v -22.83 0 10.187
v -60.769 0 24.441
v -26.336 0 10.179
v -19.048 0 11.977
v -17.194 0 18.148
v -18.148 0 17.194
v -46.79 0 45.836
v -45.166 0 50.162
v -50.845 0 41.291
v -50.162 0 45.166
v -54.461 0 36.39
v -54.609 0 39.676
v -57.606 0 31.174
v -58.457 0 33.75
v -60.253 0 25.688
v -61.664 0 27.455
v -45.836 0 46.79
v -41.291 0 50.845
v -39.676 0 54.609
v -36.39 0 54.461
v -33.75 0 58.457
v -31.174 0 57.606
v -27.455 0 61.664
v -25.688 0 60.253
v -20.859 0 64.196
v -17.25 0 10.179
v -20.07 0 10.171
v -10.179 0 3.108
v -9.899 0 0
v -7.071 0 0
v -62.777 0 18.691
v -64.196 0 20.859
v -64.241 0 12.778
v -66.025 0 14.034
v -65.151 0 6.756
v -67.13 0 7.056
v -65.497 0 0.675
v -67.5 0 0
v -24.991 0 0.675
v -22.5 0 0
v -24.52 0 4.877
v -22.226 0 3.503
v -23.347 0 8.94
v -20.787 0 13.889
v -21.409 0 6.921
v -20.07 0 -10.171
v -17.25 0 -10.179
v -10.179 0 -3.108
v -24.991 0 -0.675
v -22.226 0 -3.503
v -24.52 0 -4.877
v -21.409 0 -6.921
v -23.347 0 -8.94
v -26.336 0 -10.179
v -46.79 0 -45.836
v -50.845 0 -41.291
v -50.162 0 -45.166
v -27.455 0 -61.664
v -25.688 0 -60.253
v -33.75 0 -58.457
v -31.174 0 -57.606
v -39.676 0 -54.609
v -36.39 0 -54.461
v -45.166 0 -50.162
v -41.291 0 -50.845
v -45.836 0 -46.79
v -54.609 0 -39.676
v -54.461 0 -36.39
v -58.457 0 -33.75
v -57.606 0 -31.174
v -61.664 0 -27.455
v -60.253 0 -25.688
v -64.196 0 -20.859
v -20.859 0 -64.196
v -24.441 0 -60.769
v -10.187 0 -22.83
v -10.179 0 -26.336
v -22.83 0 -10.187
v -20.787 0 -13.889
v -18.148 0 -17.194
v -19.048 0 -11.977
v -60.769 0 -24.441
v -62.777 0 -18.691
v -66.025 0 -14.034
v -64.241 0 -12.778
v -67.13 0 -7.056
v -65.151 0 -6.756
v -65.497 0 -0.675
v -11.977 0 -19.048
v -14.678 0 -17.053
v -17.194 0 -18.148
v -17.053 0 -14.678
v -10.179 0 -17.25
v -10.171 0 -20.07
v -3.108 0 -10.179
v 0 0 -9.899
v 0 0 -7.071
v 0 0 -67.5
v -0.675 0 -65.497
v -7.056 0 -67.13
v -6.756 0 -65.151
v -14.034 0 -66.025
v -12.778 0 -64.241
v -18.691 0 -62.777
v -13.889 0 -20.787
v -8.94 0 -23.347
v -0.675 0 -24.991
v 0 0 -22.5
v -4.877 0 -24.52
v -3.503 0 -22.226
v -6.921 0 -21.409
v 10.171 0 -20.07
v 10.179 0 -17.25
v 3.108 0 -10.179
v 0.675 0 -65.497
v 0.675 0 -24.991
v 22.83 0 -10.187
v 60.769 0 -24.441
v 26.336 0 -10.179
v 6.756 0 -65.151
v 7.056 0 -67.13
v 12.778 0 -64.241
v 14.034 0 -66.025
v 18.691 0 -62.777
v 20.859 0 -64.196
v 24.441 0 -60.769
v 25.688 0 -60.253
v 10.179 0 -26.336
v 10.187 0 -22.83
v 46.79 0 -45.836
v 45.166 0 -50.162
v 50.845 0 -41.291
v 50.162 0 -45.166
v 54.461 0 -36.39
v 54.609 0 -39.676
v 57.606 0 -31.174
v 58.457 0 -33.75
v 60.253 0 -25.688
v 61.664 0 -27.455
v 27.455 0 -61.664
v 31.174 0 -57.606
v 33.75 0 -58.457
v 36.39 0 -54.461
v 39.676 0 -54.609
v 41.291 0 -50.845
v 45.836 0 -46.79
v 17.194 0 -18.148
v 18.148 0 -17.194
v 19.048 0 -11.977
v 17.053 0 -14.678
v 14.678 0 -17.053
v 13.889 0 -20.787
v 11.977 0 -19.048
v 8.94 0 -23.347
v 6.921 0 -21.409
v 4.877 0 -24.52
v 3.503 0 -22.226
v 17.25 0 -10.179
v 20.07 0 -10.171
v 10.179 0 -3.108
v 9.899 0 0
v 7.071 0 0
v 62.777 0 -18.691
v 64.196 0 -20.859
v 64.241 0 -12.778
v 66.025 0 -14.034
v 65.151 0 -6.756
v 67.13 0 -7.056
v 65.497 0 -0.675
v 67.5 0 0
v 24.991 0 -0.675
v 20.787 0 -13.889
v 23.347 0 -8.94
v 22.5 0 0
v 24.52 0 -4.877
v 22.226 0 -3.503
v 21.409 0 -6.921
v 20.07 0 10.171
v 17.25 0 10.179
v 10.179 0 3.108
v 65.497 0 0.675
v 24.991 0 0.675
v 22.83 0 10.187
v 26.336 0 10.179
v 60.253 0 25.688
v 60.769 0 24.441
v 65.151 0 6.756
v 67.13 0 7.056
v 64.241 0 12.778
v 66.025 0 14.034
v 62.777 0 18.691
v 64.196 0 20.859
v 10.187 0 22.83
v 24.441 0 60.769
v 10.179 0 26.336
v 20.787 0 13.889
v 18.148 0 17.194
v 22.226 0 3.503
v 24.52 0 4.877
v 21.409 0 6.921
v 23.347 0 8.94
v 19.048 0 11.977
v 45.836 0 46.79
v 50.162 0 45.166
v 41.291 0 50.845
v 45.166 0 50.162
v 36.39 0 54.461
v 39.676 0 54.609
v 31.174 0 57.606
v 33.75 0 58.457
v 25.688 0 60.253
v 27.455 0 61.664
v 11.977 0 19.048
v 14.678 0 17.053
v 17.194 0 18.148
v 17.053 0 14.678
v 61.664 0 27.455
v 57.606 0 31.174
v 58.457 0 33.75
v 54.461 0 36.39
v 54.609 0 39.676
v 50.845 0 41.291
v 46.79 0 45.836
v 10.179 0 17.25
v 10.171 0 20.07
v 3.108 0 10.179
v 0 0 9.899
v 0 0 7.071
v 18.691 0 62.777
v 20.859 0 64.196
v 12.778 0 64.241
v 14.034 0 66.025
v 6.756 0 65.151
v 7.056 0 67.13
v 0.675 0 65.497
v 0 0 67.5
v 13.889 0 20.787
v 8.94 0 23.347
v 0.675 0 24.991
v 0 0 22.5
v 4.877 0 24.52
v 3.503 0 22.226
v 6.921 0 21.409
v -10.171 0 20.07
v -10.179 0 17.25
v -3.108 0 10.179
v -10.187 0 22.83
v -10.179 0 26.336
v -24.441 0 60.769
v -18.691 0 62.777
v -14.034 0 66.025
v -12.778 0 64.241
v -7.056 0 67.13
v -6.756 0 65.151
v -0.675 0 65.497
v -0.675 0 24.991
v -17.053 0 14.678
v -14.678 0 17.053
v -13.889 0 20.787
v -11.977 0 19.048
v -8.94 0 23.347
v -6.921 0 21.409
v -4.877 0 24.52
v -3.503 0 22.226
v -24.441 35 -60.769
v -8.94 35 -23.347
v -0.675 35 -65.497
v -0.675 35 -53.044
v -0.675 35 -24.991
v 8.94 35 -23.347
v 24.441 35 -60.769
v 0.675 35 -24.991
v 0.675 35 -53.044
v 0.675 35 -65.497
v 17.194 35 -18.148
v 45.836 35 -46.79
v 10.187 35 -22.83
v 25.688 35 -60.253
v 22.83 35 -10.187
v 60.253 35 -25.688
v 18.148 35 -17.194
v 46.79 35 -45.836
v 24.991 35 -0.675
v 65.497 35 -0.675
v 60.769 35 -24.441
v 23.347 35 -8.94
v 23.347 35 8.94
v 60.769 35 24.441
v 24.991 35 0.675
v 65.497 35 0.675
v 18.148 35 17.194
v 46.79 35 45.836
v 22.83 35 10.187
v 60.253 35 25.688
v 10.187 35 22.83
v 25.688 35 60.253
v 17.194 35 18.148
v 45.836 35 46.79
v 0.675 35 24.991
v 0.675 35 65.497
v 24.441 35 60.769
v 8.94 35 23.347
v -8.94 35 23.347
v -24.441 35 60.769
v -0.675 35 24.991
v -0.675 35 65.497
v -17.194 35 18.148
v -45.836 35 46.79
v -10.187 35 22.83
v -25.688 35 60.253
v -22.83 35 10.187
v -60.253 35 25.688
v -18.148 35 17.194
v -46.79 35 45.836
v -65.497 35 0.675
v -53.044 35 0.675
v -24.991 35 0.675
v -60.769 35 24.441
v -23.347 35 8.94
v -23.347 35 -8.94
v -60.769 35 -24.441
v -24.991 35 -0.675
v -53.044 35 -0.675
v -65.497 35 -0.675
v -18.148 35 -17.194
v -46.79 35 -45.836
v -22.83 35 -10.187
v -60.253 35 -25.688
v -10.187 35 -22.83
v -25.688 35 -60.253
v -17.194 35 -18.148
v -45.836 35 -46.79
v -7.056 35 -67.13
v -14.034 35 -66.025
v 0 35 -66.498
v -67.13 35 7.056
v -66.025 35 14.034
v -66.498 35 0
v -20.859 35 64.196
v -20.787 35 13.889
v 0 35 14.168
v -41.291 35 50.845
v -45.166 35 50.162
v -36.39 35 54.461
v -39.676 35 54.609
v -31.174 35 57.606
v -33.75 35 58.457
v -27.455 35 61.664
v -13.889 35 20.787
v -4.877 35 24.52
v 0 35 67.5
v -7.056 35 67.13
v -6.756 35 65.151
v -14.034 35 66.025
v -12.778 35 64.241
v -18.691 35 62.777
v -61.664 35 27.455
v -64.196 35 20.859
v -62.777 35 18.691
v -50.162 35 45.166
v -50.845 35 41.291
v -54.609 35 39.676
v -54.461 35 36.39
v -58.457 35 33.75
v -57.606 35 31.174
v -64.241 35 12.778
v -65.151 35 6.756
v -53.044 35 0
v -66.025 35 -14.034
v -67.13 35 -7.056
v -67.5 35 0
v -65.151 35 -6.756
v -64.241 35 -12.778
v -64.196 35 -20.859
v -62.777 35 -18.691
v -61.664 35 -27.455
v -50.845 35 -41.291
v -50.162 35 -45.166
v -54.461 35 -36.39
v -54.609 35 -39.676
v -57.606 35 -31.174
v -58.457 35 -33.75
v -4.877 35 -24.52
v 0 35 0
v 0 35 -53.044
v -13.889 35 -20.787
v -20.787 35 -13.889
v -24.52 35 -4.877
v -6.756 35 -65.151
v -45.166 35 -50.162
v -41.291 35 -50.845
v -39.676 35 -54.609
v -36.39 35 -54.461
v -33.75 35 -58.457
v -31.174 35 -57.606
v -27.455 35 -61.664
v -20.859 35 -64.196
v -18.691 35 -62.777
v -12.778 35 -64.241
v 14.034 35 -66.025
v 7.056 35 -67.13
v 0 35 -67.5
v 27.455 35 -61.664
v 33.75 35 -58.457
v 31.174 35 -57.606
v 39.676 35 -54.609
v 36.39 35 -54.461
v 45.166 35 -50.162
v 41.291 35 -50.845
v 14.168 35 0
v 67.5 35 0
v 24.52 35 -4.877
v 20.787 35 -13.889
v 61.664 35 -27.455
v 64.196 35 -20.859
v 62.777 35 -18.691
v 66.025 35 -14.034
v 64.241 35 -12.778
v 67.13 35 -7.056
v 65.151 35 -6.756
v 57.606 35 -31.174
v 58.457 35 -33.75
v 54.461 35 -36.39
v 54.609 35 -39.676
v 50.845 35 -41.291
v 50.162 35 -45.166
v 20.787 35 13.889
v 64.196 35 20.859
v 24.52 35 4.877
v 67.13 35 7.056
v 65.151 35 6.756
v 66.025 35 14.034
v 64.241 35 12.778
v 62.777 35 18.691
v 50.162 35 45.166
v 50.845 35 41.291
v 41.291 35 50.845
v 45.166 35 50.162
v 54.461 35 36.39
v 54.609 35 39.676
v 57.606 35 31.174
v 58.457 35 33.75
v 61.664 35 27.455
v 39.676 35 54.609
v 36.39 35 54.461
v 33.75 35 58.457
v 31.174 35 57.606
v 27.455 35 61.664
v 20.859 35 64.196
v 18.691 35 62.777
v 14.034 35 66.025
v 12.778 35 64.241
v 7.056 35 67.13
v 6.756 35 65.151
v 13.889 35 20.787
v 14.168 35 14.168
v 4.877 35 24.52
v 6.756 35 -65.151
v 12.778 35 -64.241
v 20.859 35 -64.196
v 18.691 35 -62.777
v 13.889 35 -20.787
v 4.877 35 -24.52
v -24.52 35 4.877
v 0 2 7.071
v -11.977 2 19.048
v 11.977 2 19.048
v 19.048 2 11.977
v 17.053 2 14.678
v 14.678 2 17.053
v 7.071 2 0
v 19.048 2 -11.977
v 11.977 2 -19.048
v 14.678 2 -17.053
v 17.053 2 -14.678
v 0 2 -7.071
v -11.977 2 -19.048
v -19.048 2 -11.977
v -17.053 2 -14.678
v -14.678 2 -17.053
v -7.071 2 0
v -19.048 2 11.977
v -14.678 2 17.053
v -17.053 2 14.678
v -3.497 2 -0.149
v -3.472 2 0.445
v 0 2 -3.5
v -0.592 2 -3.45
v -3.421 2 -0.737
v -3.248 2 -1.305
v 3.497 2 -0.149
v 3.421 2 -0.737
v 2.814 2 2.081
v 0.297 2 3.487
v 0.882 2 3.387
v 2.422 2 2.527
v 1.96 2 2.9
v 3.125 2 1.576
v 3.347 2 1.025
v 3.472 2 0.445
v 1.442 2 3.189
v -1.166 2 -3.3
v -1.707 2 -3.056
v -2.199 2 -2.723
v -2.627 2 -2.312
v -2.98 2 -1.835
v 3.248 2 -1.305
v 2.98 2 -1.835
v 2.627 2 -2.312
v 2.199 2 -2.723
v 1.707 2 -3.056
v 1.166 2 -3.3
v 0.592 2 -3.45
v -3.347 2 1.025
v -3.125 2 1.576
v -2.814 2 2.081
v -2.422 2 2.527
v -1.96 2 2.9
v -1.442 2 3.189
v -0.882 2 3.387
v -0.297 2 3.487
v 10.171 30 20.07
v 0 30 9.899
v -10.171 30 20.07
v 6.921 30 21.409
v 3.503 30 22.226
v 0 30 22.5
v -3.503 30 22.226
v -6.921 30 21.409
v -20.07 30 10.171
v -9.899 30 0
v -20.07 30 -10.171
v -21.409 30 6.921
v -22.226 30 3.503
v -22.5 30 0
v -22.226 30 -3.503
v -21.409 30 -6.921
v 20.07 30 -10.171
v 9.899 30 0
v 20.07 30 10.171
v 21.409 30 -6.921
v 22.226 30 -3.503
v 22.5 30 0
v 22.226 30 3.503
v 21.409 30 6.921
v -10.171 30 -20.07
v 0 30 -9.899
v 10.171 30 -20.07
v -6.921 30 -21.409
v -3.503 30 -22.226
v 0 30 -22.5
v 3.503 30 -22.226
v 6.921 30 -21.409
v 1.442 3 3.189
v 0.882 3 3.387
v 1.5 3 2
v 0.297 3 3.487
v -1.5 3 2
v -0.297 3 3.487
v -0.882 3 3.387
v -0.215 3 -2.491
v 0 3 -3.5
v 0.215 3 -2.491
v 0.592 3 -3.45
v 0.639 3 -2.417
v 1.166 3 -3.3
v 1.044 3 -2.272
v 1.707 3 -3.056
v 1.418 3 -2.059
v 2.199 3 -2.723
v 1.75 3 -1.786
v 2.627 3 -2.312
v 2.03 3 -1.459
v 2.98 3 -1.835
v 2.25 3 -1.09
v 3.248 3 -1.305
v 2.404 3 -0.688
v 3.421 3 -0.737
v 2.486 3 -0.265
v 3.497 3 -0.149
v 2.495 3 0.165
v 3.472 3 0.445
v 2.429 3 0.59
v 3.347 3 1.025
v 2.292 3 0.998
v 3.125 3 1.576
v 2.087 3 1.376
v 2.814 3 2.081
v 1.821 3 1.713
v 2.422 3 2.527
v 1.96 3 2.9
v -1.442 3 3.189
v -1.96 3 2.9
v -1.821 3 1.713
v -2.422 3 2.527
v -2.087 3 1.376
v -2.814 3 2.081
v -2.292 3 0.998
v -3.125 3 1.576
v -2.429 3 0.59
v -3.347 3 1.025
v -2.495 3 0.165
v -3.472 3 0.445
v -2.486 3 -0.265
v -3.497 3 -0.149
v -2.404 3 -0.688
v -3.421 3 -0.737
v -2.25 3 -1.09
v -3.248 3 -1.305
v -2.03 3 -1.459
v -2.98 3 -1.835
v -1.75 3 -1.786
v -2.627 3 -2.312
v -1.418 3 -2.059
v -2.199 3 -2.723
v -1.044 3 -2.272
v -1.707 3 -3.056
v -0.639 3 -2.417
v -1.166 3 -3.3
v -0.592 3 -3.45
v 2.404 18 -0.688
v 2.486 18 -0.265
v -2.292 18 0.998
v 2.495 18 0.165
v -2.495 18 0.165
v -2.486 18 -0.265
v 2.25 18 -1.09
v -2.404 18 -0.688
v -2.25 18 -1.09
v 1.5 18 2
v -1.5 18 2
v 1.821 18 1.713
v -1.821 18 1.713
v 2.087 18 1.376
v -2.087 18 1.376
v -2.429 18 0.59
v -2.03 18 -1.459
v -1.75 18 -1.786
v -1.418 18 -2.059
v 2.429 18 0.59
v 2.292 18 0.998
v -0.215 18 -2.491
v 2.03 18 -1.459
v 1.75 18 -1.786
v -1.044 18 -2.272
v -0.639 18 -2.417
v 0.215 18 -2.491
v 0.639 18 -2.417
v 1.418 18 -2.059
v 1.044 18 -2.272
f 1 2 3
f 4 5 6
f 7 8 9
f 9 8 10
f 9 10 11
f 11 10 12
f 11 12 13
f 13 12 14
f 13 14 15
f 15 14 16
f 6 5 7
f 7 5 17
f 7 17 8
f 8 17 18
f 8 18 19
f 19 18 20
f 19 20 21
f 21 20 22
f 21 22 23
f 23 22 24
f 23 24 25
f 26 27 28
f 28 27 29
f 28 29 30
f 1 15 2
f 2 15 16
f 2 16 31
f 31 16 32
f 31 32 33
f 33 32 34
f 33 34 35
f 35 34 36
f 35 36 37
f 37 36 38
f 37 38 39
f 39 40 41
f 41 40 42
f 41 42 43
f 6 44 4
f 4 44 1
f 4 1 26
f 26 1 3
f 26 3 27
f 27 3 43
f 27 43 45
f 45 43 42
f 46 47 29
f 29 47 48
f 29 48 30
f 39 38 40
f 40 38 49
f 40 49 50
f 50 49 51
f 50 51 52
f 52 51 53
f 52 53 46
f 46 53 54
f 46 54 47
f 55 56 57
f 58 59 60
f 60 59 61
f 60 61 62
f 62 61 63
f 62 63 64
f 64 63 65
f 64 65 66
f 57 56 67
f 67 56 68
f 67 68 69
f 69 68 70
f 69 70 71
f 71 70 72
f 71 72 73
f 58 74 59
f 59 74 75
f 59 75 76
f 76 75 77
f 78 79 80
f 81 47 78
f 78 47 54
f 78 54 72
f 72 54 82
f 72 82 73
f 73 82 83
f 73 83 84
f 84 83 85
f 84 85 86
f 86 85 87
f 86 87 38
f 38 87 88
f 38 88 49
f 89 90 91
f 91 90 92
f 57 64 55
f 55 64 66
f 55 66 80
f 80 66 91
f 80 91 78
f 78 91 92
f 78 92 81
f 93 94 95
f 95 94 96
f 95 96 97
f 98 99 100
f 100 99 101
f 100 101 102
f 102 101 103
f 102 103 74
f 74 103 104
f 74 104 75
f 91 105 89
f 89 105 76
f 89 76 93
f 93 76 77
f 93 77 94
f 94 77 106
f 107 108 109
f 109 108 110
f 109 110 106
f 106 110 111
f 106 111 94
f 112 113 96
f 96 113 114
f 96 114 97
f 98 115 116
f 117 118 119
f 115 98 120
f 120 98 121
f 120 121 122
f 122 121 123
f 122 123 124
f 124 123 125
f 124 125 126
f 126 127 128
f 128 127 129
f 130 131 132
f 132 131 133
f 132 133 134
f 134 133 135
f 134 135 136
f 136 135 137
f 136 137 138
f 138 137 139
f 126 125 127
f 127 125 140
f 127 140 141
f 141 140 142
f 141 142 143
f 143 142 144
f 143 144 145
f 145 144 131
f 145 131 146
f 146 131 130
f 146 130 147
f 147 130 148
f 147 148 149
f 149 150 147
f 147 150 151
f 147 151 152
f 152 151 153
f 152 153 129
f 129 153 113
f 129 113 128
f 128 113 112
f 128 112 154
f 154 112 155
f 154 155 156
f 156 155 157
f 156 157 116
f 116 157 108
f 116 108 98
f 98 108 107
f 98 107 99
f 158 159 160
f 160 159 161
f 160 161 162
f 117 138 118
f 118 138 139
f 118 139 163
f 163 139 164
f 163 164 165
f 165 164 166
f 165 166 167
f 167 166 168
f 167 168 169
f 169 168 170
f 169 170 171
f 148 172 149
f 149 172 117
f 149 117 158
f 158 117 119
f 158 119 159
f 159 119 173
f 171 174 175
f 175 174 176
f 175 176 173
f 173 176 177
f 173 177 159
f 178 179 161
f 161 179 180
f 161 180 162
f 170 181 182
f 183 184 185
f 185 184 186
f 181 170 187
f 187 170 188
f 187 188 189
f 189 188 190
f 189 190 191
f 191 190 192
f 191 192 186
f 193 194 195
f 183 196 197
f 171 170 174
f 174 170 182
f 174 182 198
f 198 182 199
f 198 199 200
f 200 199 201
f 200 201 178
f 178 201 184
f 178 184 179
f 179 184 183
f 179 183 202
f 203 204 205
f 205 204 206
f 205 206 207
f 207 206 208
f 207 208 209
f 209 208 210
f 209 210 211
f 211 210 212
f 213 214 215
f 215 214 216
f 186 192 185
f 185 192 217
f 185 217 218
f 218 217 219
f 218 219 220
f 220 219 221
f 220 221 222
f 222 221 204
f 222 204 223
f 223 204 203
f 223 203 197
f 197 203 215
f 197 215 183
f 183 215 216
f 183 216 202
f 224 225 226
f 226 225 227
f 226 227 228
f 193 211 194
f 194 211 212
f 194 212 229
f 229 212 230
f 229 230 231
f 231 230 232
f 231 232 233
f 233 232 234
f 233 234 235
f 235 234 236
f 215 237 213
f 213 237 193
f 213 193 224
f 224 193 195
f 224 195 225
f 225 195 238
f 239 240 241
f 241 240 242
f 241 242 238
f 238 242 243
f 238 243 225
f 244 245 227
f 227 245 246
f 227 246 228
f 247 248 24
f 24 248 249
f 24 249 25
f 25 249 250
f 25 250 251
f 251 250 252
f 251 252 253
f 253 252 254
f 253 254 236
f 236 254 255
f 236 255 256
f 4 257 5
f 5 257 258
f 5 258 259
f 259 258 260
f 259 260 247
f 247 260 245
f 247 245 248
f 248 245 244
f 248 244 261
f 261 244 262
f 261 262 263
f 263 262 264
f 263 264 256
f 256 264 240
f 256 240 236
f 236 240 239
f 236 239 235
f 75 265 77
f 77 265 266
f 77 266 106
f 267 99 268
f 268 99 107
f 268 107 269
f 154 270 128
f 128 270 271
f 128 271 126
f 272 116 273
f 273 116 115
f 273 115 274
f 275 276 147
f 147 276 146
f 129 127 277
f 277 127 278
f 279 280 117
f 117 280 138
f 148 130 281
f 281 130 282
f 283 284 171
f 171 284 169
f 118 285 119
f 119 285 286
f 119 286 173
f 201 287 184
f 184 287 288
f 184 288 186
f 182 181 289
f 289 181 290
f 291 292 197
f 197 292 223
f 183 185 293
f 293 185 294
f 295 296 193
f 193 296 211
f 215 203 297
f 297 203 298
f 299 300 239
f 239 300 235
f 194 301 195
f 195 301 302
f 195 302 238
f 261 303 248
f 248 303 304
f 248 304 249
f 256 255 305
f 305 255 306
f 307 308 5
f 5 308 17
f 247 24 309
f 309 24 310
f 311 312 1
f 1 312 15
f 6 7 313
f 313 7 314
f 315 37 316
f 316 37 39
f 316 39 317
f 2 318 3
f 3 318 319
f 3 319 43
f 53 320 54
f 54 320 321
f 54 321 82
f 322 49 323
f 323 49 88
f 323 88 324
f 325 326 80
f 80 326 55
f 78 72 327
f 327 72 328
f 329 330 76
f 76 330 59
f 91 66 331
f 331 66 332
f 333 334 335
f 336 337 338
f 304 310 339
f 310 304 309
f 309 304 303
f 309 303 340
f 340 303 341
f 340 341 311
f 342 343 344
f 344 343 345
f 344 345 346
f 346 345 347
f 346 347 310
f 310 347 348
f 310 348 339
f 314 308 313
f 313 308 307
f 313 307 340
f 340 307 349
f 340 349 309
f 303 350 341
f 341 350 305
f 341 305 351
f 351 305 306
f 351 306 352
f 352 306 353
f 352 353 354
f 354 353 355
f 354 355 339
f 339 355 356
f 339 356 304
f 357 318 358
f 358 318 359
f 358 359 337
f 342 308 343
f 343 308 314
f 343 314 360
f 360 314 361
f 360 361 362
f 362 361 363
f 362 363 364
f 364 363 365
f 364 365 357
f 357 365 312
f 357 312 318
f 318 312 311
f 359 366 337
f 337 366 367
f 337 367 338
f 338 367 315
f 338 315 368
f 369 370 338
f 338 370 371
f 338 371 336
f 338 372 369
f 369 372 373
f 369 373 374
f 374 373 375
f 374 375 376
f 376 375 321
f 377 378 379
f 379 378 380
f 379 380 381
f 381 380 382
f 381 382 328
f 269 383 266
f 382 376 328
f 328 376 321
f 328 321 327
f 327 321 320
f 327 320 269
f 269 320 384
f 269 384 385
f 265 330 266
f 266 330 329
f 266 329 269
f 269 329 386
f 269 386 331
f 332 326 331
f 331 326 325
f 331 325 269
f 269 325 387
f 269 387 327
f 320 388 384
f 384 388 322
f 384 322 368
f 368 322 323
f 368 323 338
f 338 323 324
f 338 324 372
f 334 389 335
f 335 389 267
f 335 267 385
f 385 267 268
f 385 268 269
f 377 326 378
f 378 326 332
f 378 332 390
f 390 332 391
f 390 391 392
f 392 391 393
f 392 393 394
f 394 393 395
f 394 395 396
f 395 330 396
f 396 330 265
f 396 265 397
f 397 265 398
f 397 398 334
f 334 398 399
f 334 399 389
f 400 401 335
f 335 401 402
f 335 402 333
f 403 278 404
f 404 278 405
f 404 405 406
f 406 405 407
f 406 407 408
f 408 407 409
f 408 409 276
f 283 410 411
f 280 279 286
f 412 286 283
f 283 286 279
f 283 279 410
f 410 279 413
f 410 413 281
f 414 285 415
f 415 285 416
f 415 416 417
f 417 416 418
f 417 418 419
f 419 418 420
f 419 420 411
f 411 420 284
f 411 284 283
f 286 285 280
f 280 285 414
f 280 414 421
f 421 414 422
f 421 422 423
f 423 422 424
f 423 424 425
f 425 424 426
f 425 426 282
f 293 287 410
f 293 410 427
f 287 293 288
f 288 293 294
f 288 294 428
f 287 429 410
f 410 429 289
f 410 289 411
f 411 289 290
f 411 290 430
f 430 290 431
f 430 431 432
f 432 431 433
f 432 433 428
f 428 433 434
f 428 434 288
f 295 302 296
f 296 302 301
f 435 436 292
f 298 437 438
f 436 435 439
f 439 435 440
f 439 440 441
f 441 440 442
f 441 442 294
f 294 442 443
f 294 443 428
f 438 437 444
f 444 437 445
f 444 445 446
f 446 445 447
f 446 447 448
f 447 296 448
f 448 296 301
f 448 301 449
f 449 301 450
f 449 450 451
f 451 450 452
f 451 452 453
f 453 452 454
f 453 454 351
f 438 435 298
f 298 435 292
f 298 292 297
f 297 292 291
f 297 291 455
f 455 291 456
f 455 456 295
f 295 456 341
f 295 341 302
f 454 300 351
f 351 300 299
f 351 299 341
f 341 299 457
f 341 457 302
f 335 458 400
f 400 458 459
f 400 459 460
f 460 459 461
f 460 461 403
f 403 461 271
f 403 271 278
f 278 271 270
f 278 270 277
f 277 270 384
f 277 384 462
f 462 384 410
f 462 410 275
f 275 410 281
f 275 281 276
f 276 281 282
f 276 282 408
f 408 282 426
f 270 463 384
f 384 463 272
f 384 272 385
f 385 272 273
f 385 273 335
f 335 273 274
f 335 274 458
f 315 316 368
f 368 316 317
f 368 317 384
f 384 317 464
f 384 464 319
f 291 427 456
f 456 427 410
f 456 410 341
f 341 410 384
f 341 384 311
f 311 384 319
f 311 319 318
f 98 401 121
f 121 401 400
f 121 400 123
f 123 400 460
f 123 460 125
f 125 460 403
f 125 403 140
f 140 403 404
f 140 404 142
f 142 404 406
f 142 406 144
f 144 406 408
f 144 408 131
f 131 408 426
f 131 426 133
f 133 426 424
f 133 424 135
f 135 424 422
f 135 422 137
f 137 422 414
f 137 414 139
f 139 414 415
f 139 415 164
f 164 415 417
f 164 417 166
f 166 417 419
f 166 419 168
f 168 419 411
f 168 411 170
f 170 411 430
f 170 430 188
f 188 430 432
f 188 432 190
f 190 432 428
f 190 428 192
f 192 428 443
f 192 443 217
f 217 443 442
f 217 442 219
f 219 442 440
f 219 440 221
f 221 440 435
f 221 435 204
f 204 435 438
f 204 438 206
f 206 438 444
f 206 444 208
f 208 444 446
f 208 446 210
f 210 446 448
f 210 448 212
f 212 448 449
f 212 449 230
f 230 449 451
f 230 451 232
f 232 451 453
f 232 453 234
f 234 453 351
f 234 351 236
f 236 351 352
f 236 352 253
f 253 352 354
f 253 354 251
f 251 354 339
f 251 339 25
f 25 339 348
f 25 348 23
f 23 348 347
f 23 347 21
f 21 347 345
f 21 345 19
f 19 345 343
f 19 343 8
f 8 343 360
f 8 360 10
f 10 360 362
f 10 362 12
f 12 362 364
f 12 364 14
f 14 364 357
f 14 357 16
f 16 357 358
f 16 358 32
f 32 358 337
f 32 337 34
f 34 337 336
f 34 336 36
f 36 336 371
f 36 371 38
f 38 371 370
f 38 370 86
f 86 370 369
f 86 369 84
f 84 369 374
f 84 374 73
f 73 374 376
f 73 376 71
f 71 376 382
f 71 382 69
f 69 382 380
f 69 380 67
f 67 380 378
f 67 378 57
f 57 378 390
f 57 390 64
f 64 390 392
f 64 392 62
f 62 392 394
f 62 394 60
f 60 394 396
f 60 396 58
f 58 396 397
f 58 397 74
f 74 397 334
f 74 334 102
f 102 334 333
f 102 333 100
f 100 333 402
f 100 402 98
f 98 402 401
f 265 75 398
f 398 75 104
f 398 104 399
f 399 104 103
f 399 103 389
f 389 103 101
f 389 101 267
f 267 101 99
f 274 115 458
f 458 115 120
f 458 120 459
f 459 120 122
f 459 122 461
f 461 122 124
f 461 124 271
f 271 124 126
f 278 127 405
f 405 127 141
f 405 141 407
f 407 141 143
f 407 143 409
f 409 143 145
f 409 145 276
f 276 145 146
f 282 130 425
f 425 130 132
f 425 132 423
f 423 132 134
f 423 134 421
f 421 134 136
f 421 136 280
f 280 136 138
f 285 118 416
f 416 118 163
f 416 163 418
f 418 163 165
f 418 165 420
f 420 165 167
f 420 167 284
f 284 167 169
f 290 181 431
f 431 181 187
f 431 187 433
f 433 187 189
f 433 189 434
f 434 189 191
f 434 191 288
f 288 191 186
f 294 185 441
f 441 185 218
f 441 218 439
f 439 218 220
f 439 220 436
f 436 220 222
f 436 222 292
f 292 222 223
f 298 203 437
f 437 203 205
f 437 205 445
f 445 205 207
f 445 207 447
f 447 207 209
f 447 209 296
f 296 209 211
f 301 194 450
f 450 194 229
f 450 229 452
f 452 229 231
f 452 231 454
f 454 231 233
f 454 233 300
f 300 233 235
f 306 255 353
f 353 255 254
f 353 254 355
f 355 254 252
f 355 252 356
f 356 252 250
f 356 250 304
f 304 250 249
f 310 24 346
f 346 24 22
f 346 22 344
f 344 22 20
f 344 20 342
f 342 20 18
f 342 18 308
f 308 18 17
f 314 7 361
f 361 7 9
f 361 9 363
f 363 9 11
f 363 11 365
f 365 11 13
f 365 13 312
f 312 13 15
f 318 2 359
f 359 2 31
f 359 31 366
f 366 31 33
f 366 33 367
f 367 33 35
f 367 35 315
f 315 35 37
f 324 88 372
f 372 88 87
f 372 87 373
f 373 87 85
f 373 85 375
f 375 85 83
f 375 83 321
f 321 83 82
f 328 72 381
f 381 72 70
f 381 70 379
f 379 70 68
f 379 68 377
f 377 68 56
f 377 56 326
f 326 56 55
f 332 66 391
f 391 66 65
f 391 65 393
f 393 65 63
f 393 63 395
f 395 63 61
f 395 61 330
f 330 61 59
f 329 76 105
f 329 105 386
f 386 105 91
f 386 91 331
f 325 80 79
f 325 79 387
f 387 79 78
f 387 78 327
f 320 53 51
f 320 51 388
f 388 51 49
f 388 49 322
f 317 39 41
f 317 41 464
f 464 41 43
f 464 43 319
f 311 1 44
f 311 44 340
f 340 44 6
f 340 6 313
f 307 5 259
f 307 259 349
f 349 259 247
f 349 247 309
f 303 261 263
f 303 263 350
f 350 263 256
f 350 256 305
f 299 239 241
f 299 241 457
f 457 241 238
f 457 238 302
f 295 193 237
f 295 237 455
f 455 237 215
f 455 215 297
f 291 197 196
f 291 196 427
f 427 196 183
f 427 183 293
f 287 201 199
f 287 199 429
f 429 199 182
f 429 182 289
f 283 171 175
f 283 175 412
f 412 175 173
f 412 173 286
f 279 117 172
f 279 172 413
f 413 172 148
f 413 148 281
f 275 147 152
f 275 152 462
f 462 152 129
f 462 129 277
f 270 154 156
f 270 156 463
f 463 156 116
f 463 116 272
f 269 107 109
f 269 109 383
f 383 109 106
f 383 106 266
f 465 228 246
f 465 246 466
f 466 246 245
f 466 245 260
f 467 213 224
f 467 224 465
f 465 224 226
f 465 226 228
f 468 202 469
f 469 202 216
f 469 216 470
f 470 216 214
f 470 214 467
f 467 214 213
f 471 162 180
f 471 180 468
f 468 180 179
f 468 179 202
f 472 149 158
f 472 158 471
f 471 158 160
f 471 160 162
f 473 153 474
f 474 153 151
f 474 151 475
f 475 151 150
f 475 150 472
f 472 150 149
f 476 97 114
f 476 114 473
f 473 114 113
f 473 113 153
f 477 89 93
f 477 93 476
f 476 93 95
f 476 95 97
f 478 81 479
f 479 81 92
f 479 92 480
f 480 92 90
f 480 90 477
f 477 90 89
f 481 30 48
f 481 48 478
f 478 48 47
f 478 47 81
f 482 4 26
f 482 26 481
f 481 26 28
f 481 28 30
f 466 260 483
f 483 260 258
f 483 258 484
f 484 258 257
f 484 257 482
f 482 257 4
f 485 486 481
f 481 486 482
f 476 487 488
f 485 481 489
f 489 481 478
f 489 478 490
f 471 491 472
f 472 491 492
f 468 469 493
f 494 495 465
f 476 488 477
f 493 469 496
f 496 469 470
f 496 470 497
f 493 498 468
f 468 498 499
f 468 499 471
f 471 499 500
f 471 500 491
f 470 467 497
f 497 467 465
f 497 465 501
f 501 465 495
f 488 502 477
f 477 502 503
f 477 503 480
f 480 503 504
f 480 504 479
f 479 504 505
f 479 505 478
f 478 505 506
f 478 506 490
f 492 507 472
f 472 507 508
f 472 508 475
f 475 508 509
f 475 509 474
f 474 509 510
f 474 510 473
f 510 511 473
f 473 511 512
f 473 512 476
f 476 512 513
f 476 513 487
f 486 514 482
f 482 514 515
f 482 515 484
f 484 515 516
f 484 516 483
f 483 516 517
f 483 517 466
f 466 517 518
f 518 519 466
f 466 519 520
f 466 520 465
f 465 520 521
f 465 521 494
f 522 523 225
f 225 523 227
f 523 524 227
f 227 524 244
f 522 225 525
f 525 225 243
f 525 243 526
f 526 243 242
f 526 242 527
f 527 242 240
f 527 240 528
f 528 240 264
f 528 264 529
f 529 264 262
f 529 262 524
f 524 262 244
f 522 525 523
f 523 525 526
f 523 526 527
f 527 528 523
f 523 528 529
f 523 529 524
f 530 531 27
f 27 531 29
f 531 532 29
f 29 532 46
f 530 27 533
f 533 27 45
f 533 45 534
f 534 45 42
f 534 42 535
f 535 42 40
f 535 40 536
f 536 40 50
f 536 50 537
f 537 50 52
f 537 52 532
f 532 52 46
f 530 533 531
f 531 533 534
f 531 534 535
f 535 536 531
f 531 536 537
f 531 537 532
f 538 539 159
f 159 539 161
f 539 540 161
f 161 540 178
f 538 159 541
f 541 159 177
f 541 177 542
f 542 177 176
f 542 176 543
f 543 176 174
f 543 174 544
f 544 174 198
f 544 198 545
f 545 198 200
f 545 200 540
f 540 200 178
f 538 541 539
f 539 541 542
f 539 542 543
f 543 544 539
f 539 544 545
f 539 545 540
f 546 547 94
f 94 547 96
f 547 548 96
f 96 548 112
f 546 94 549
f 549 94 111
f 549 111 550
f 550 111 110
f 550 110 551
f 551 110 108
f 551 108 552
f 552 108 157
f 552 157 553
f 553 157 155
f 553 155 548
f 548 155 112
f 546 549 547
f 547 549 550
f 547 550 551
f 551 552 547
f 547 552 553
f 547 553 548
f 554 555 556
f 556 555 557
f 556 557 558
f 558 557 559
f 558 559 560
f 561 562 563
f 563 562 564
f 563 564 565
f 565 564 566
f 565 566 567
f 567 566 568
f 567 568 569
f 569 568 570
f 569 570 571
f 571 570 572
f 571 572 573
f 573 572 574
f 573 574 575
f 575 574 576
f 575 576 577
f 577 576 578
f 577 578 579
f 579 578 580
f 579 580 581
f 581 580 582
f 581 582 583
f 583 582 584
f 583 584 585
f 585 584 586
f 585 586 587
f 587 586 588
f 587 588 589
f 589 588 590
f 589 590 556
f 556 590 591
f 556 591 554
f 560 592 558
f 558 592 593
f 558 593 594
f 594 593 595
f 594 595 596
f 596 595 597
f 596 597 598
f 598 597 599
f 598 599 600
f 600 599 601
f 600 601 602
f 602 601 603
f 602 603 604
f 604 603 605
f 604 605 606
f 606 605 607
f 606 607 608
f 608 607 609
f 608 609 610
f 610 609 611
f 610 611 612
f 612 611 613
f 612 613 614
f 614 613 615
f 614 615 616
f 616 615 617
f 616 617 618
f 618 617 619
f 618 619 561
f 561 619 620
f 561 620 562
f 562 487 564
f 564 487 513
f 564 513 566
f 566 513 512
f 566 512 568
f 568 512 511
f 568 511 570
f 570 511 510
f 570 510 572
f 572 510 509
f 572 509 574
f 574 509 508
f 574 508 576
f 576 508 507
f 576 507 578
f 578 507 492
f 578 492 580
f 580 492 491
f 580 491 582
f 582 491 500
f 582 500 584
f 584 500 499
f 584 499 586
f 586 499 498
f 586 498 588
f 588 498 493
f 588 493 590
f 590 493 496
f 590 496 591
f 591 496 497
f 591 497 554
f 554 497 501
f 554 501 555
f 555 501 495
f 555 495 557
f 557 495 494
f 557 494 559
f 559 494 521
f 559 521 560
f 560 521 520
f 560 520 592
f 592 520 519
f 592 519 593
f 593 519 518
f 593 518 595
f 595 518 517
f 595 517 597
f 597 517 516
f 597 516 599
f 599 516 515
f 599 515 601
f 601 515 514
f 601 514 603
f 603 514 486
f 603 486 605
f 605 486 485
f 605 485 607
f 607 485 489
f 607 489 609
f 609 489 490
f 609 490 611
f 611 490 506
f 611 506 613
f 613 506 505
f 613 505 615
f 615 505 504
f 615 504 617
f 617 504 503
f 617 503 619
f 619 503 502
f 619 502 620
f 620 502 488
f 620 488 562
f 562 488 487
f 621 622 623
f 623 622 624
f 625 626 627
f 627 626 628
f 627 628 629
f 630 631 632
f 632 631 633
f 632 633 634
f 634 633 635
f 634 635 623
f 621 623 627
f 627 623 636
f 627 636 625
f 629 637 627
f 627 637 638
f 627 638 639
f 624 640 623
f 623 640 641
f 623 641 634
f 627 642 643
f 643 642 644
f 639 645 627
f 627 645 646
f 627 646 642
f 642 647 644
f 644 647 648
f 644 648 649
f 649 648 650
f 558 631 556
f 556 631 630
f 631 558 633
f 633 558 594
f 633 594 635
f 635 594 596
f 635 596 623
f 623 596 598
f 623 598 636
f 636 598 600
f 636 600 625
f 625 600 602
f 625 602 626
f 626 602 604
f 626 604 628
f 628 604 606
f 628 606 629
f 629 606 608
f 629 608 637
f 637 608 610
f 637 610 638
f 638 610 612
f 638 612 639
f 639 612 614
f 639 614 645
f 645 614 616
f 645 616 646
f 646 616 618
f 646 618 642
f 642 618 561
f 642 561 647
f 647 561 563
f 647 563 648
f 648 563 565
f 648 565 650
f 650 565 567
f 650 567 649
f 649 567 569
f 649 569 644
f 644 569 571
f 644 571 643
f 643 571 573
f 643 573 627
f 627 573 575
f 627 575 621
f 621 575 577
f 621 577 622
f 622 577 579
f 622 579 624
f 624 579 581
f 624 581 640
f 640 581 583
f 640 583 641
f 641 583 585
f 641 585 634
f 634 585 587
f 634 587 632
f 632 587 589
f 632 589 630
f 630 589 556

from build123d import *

# Parameters (mm, degrees)
BOSS_EXTRUDE1_OUTLINE_R = 67.5
BOSS_EXTRUDE1_DEPTH     = 35
SKETCH2_R               = 2.5
CUT_EXTRUDE2_DEPTH      = 18
SKETCH4_R               = 25
BOSS_EXTRUDE3_DEPTH     = 35
CUT_EXTRUDE4_DEPTH      = 18
CUT_EXTRUDE7_DEPTH      = 2
CUT_EXTRUDE8_DEPTH      = 30
SKETCH9_R               = 3.5
CUT_EXTRUDE9_DEPTH      = 1


# Read off the part's stored shape, not the designer's step: Boss-Extrude1
with BuildPart() as part:
    # Boss-Extrude1 outline → Boss-Extrude1 (new body)
    with BuildSketch(Plane(origin=(0, 0, 0), x_dir=(1, 0, 0), z_dir=(0, 1, 0))):
        Circle(BOSS_EXTRUDE1_OUTLINE_R)
        with BuildLine():
            ThreePointArc((-13.30331837, -14.257339175), (-10.833619544, -16.21365744), (-8.081104316, -17.746711048))
            Line((-8.081104316, -17.746711048), (-25.687679516, -60.252743681))
            ThreePointArc((-25.687679516, -60.252743681), (-36.389850263, -54.461259606), (-45.836027298, -46.790048103))
            Line((-45.836027298, -46.790048103), (-13.30331837, -14.257339175))
        make_face(mode=Mode.SUBTRACT)
        with BuildLine():
            ThreePointArc((-6.834616064, -18.263023388), (-3.804261279, -19.125312968), (-0.674594581, -19.488327844))
            Line((-0.674594581, -19.488327844), (-0.674594581, -65.496526031))
            ThreePointArc((-0.674594581, -65.496526031), (-12.778416092, -64.241435866), (-24.441191264, -60.76905602))
            Line((-24.441191264, -60.76905602), (-6.834616064, -18.263023388))
        make_face(mode=Mode.SUBTRACT)
        with BuildLine():
            ThreePointArc((-17.746711048, -8.081104316), (-16.21365744, -10.833619544), (-14.257339175, -13.30331837))
            Line((-14.257339175, -13.30331837), (-46.790048103, -45.836027298))
            ThreePointArc((-46.790048103, -45.836027298), (-54.461259606, -36.389850263), (-60.252743681, -25.687679516))
            Line((-60.252743681, -25.687679516), (-17.746711048, -8.081104316))
        make_face(mode=Mode.SUBTRACT)
        with BuildLine():
            ThreePointArc((-19.488327844, -0.674594581), (-19.125312968, -3.804261279), (-18.263023388, -6.834616064))
            Line((-18.263023388, -6.834616064), (-60.76905602, -24.441191264))
            ThreePointArc((-60.76905602, -24.441191264), (-64.241435866, -12.778416092), (-65.496526031, -0.674594581))
            Line((-65.496526031, -0.674594581), (-19.488327844, -0.674594581))
        make_face(mode=Mode.SUBTRACT)
        with BuildLine():
            ThreePointArc((0.674594581, -19.488327844), (3.804261279, -19.125312968), (6.834616064, -18.263023388))
            Line((6.834616064, -18.263023388), (24.441191264, -60.76905602))
            ThreePointArc((24.441191264, -60.76905602), (12.778416092, -64.241435866), (0.674594581, -65.496526031))
            Line((0.674594581, -65.496526031), (0.674594581, -19.488327844))
        make_face(mode=Mode.SUBTRACT)
        with BuildLine():
            ThreePointArc((8.081104316, -17.746711048), (10.833619544, -16.21365744), (13.30331837, -14.257339175))
            Line((13.30331837, -14.257339175), (45.836027298, -46.790048103))
            ThreePointArc((45.836027298, -46.790048103), (36.389850263, -54.461259606), (25.687679516, -60.252743681))
            Line((25.687679516, -60.252743681), (8.081104316, -17.746711048))
        make_face(mode=Mode.SUBTRACT)
        with BuildLine():
            ThreePointArc((14.257339175, -13.30331837), (16.21365744, -10.833619544), (17.746711048, -8.081104316))
            Line((17.746711048, -8.081104316), (60.252743681, -25.687679516))
            ThreePointArc((60.252743681, -25.687679516), (54.461259606, -36.389850263), (46.790048103, -45.836027298))
            Line((46.790048103, -45.836027298), (14.257339175, -13.30331837))
        make_face(mode=Mode.SUBTRACT)
        with BuildLine():
            ThreePointArc((18.263023388, -6.834616064), (19.125312968, -3.804261279), (19.488327844, -0.674594581))
            Line((19.488327844, -0.674594581), (65.496526031, -0.674594581))
            ThreePointArc((65.496526031, -0.674594581), (64.241435866, -12.778416092), (60.76905602, -24.441191264))
            Line((60.76905602, -24.441191264), (18.263023388, -6.834616064))
        make_face(mode=Mode.SUBTRACT)
        with BuildLine():
            ThreePointArc((-18.263023388, 6.834616064), (-19.125312968, 3.804261279), (-19.488327844, 0.674594581))
            Line((-19.488327844, 0.674594581), (-65.496526031, 0.674594581))
            ThreePointArc((-65.496526031, 0.674594581), (-64.241435866, 12.778416092), (-60.76905602, 24.441191264))
            Line((-60.76905602, 24.441191264), (-18.263023388, 6.834616064))
        make_face(mode=Mode.SUBTRACT)
        with BuildLine():
            ThreePointArc((-14.257339175, 13.30331837), (-16.21365744, 10.833619544), (-17.746711048, 8.081104316))
            Line((-17.746711048, 8.081104316), (-60.252743681, 25.687679516))
            ThreePointArc((-60.252743681, 25.687679516), (-54.461259606, 36.389850263), (-46.790048103, 45.836027298))
            Line((-46.790048103, 45.836027298), (-14.257339175, 13.30331837))
        make_face(mode=Mode.SUBTRACT)
        with BuildLine():
            ThreePointArc((-8.081104316, 17.746711048), (-10.833619544, 16.21365744), (-13.30331837, 14.257339175))
            Line((-13.30331837, 14.257339175), (-45.836027298, 46.790048103))
            ThreePointArc((-45.836027298, 46.790048103), (-36.389850263, 54.461259606), (-25.687679516, 60.252743681))
            Line((-25.687679516, 60.252743681), (-8.081104316, 17.746711048))
        make_face(mode=Mode.SUBTRACT)
        with BuildLine():
            Line((-6.834616064, 18.263023388), (-24.441191264, 60.76905602))
            ThreePointArc((-24.441191264, 60.76905602), (-12.778416092, 64.241435866), (-0.674594581, 65.496526031))
            Line((-0.674594581, 65.496526031), (-0.674594581, 19.488327844))
            ThreePointArc((-0.674594581, 19.488327844), (-3.804261279, 19.125312968), (-6.834616064, 18.263023388))
        make_face(mode=Mode.SUBTRACT)
        with BuildLine():
            ThreePointArc((19.488327844, 0.674594581), (19.125312968, 3.804261279), (18.263023388, 6.834616064))
            Line((18.263023388, 6.834616064), (60.76905602, 24.441191264))
            ThreePointArc((60.76905602, 24.441191264), (64.241435866, 12.778416092), (65.496526031, 0.674594581))
            Line((65.496526031, 0.674594581), (19.488327844, 0.674594581))
        make_face(mode=Mode.SUBTRACT)
        with BuildLine():
            ThreePointArc((17.746711048, 8.081104316), (16.21365744, 10.833619544), (14.257339175, 13.30331837))
            Line((14.257339175, 13.30331837), (46.790048103, 45.836027298))
            ThreePointArc((46.790048103, 45.836027298), (54.461259606, 36.389850263), (60.252743681, 25.687679516))
            Line((60.252743681, 25.687679516), (17.746711048, 8.081104316))
        make_face(mode=Mode.SUBTRACT)
        with BuildLine():
            ThreePointArc((6.834616064, 18.263023388), (3.804261279, 19.125312968), (0.674594581, 19.488327844))
            Line((0.674594581, 19.488327844), (0.674594581, 65.496526031))
            ThreePointArc((0.674594581, 65.496526031), (12.778416092, 64.241435866), (24.441191264, 60.76905602))
            Line((24.441191264, 60.76905602), (6.834616064, 18.263023388))
        make_face(mode=Mode.SUBTRACT)
        with BuildLine():
            ThreePointArc((13.30331837, 14.257339175), (10.833619544, 16.21365744), (8.081104316, 17.746711048))
            Line((8.081104316, 17.746711048), (25.687679516, 60.252743681))
            ThreePointArc((25.687679516, 60.252743681), (36.389850263, 54.461259606), (45.836027298, 46.790048103))
            Line((45.836027298, 46.790048103), (13.30331837, 14.257339175))
        make_face(mode=Mode.SUBTRACT)
    extrude(amount=BOSS_EXTRUDE1_DEPTH)

    # Sketch2 → Cut-Extrude2 (cut)
    with BuildSketch(Plane.XZ):
        with Locations(Location((0, 0, 0), (0, 0, 270))):
            Circle(SKETCH2_R)
    extrude(amount=-CUT_EXTRUDE2_DEPTH, mode=Mode.SUBTRACT)

    # Sketch4 → Boss-Extrude3 (add)
    with BuildSketch(Plane(origin=(0, 0, 0), x_dir=(1, 0, 0), z_dir=(0, 1, 0))):
        Circle(SKETCH4_R)
    extrude(amount=BOSS_EXTRUDE3_DEPTH)

    # Sketch5 → Cut-Extrude4 (cut)
    with BuildSketch(Plane.XZ):
        with BuildLine():
            Line((-1.5, 2), (1.5, 2))
            ThreePointArc((1.5, 2), (0, -2.5), (-1.5, 2))
        make_face()
    extrude(amount=-CUT_EXTRUDE4_DEPTH, mode=Mode.SUBTRACT)

    # Sketch6 → Cut-Extrude7 (cut)
    with BuildSketch(Plane.XZ):
        with BuildLine():
            Line((-7.714466094, 14.785533906), (0, 7.071067812))
            Line((0, 7.071067812), (7.714466094, 14.785533906))
            Line((7.714466094, 14.785533906), (11.976558152, 19.047625963))
            ThreePointArc((11.976558152, 19.047625963), (15.909902577, 15.909902577), (19.047625963, 11.976558152))
            Line((19.047625963, 11.976558152), (14.785533906, 7.714466094))
            Line((14.785533906, 7.714466094), (7.071067812, 0))
            Line((7.071067812, 0), (14.785533906, -7.714466094))
            Line((14.785533906, -7.714466094), (19.047625963, -11.976558152))
            ThreePointArc((19.047625963, -11.976558152), (15.909902577, -15.909902577), (11.976558152, -19.047625963))
            Line((11.976558152, -19.047625963), (7.714466094, -14.785533906))
            Line((7.714466094, -14.785533906), (0, -7.071067812))
            Line((0, -7.071067812), (-7.714466094, -14.785533906))
            Line((-7.714466094, -14.785533906), (-11.976558152, -19.047625963))
            ThreePointArc((-11.976558152, -19.047625963), (-15.909902577, -15.909902577), (-19.047625963, -11.976558152))
            Line((-19.047625963, -11.976558152), (-14.785533906, -7.714466094))
            Line((-14.785533906, -7.714466094), (-7.071067812, 0))
            Line((-7.071067812, 0), (-14.785533906, 7.714466094))
            Line((-14.785533906, 7.714466094), (-19.047625963, 11.976558152))
            ThreePointArc((-19.047625963, 11.976558152), (-15.909902577, 15.909902577), (-11.976558152, 19.047625963))
            Line((-11.976558152, 19.047625963), (-7.714466094, 14.785533906))
        make_face()
    extrude(amount=-CUT_EXTRUDE7_DEPTH, mode=Mode.SUBTRACT)

    # Sketch7 → Cut-Extrude8 (cut)
    with BuildSketch(Plane.XZ):
        with BuildLine():
            Line((9.899494937, 0), (20.070097993, 10.170603057))
            ThreePointArc((20.070097993, 10.170603057), (22.5, 0), (20.070097993, -10.170603057))
            Line((20.070097993, -10.170603057), (9.899494937, 0))
        make_face()
        with BuildLine():
            Line((0, 9.899494937), (-10.170603057, 20.070097993))
            ThreePointArc((-10.170603057, 20.070097993), (0, 22.5), (10.170603057, 20.070097993))
            Line((10.170603057, 20.070097993), (0, 9.899494937))
        make_face()
        with BuildLine():
            Line((0, -9.899494937), (10.170603057, -20.070097993))
            ThreePointArc((10.170603057, -20.070097993), (0, -22.5), (-10.170603057, -20.070097993))
            Line((-10.170603057, -20.070097993), (0, -9.899494937))
        make_face()
        with BuildLine():
            Line((-9.899494937, 0), (-20.070097993, -10.170603057))
            ThreePointArc((-20.070097993, -10.170603057), (-22.5, 0), (-20.070097993, 10.170603057))
            Line((-20.070097993, 10.170603057), (-9.899494937, 0))
        make_face()
    extrude(amount=-CUT_EXTRUDE8_DEPTH, mode=Mode.SUBTRACT)

    # Sketch9 → Cut-Extrude9 (cut)
    with BuildSketch(Plane(origin=(0, 2, 0), x_dir=(-1, 0, 0), z_dir=(0, -1, 0))):
        with Locations(Location((0, 0, 0), (0, 0, 90))):
            Circle(SKETCH9_R)
    extrude(amount=-CUT_EXTRUDE9_DEPTH, mode=Mode.SUBTRACT)


solid = part.part
